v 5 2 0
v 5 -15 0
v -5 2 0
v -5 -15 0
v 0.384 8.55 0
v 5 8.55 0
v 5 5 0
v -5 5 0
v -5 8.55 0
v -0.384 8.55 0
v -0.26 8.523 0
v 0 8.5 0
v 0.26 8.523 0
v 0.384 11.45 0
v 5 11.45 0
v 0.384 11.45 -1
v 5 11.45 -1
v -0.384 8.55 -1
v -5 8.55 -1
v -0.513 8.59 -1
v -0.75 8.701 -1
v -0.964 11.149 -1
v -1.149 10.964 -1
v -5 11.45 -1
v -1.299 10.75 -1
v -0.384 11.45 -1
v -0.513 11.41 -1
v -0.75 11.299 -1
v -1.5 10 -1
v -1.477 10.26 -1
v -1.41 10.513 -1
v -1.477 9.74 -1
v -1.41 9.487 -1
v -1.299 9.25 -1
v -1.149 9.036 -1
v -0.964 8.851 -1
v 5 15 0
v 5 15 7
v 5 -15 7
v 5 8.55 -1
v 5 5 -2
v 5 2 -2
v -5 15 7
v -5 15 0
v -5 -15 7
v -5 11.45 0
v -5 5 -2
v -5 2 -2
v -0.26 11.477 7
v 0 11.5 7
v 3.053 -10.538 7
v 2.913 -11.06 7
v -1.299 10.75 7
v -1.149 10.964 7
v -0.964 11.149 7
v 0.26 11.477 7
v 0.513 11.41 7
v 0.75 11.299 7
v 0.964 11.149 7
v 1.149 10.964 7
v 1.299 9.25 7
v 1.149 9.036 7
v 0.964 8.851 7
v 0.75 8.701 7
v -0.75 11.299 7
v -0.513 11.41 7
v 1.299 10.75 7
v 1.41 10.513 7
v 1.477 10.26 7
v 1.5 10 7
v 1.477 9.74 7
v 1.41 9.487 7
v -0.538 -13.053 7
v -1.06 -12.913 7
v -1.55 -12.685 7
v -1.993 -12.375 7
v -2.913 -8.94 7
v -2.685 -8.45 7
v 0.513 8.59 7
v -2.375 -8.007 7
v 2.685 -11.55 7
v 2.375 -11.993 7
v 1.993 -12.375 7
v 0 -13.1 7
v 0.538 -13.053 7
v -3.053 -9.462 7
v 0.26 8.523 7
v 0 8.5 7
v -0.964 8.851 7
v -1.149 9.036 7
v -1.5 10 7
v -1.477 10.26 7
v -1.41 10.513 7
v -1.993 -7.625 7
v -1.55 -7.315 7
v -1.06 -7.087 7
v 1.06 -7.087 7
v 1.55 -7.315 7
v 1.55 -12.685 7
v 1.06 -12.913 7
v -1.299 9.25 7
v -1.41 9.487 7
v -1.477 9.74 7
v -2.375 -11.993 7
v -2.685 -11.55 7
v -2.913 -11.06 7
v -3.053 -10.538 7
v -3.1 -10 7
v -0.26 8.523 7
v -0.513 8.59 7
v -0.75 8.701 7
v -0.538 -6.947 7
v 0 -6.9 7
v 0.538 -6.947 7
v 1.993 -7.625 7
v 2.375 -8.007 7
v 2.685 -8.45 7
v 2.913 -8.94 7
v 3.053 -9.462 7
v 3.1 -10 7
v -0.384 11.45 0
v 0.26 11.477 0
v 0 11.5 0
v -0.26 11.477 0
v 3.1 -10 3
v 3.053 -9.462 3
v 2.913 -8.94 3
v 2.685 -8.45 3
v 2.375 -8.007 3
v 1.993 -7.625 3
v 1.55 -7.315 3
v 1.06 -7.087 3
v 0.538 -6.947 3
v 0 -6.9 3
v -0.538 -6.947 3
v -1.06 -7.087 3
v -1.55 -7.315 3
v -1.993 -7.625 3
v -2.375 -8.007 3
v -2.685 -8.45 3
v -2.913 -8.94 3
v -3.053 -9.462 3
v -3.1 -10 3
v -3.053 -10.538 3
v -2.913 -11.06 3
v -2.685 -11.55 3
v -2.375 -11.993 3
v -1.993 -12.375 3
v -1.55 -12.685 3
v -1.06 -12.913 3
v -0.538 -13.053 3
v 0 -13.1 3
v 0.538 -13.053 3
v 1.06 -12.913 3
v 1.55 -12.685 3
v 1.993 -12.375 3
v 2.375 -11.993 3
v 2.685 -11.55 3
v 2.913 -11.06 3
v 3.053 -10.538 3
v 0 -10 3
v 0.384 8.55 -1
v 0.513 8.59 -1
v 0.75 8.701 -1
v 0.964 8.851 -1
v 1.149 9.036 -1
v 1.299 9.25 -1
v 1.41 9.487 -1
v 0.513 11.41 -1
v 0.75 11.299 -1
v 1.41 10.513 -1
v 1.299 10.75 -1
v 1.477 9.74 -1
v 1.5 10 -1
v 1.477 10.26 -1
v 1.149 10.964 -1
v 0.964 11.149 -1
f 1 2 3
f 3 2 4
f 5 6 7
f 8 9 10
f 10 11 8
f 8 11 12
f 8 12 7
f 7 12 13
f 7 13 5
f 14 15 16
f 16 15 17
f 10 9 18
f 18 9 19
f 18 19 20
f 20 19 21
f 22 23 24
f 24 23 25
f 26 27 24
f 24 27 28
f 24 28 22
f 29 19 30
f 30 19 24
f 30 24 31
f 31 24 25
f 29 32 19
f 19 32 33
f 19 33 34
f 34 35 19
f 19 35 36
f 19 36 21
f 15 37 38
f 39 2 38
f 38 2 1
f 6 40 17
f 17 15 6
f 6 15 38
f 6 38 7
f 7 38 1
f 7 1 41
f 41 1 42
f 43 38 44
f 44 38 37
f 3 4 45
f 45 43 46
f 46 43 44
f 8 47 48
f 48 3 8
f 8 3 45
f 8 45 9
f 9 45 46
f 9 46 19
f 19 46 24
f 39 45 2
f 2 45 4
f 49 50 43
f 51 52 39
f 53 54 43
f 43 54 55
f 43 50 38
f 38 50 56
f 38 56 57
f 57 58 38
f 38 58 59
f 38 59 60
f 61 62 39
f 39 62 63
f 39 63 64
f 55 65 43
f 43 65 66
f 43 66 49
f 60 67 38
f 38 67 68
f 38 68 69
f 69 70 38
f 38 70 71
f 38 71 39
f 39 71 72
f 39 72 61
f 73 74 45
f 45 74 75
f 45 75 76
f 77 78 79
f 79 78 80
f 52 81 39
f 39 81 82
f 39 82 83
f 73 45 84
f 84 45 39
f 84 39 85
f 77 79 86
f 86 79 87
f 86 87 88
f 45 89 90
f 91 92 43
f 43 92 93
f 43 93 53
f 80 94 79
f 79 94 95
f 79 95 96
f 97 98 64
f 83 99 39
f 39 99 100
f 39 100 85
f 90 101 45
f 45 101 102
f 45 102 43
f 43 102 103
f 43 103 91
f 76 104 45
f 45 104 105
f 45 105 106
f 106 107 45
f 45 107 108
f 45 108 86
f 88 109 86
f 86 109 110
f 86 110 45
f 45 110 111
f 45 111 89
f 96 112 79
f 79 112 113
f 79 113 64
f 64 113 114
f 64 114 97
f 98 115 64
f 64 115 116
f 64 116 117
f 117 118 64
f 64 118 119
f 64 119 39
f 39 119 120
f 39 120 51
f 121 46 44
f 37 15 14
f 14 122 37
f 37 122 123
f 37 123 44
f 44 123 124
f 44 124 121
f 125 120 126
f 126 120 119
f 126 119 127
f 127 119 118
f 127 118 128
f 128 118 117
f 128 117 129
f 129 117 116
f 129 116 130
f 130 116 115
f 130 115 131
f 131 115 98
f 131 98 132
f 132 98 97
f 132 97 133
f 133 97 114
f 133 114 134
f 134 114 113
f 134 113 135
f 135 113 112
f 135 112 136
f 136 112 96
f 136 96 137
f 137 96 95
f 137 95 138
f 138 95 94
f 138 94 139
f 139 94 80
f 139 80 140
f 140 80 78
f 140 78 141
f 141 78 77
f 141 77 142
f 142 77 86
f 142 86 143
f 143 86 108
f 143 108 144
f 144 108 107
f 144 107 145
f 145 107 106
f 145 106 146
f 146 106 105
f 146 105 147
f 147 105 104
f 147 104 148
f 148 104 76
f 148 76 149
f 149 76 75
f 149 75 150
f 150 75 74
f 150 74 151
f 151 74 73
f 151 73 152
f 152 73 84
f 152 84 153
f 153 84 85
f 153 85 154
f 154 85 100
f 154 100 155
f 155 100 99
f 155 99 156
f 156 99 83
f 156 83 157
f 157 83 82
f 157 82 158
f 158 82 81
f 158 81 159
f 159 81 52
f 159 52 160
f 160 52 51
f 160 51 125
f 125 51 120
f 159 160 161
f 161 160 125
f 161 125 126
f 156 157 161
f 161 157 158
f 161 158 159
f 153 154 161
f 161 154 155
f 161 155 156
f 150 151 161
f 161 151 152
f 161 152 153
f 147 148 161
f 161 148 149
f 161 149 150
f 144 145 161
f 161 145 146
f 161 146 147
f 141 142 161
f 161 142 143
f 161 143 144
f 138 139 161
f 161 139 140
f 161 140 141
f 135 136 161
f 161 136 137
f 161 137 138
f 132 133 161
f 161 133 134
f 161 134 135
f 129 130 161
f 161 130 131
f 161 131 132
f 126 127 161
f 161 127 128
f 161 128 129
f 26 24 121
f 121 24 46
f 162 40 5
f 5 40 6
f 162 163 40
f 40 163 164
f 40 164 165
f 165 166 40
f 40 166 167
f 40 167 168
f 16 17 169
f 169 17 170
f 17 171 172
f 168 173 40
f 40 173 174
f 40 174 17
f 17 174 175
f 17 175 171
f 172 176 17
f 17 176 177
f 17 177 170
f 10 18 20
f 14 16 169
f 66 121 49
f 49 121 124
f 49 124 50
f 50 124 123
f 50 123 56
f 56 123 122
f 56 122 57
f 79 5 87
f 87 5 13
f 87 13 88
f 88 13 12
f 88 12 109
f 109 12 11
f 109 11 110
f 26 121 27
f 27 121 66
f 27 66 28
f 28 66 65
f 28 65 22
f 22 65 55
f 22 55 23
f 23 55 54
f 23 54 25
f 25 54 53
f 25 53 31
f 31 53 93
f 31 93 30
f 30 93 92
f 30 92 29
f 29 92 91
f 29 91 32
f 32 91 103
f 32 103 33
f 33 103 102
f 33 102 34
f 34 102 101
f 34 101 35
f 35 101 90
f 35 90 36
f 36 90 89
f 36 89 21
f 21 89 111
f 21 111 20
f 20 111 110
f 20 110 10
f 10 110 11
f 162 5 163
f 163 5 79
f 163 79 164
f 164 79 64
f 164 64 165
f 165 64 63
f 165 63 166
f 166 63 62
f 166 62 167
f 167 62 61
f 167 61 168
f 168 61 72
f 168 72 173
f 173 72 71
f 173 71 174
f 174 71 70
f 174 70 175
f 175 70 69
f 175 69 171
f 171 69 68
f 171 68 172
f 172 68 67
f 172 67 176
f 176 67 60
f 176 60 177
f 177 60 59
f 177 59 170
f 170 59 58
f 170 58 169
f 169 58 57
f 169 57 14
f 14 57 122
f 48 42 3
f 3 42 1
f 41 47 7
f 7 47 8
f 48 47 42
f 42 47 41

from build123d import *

# Parameters (mm, degrees)
SKETCH1_W           = 10
SKETCH1_H           = 30
MAIN_DEPTH          = 7
SKETCH2_R           = 3.1
SHAFTHOLE_DEPTH     = 4
SKETCH3_W           = 10
SKETCH3_H           = 2.9
BOSS_EXTRUDE1_DEPTH = 1
SKETCH4_R           = 1.5
CUT_EXTRUDE1_DEPTH  = 18.720045147
SKETCH5_W           = 10
SKETCH5_H           = 3
BOSS_EXTRUDE2_DEPTH = 2


with BuildPart() as part:
    # Sketch1 → Main (new body)
    with BuildSketch(Plane.XY):
        Rectangle(SKETCH1_W, SKETCH1_H)
    extrude(amount=MAIN_DEPTH)

    # Sketch2 → ShaftHole (cut)
    with BuildSketch(Plane.XY.offset(7)):
        with Locations((0, -10)):
            Circle(SKETCH2_R)
    extrude(amount=-SHAFTHOLE_DEPTH, mode=Mode.SUBTRACT)

    # Sketch3 → Boss-Extrude1 (add)
    with BuildSketch(Plane(origin=(0, 0, 0), x_dir=(-1, 0, 0), z_dir=(0, 0, -1))):
        with Locations((0, 10)):
            Rectangle(SKETCH3_W, SKETCH3_H)
    extrude(amount=BOSS_EXTRUDE1_DEPTH)

    # Sketch4 → Cut-Extrude1 (cut, through all)
    with BuildSketch(Plane.XY.offset(7)):
        with Locations((0, 10)):
            Circle(SKETCH4_R)
    extrude(amount=-CUT_EXTRUDE1_DEPTH, mode=Mode.SUBTRACT)

    # Sketch5 → Boss-Extrude2 (add)
    with BuildSketch(Plane(origin=(0, 0, 0), x_dir=(-1, 0, 0), z_dir=(0, 0, -1))):
        with Locations((0, 3.5)):
            Rectangle(SKETCH5_W, SKETCH5_H)
    extrude(amount=BOSS_EXTRUDE2_DEPTH)


solid = part.part
